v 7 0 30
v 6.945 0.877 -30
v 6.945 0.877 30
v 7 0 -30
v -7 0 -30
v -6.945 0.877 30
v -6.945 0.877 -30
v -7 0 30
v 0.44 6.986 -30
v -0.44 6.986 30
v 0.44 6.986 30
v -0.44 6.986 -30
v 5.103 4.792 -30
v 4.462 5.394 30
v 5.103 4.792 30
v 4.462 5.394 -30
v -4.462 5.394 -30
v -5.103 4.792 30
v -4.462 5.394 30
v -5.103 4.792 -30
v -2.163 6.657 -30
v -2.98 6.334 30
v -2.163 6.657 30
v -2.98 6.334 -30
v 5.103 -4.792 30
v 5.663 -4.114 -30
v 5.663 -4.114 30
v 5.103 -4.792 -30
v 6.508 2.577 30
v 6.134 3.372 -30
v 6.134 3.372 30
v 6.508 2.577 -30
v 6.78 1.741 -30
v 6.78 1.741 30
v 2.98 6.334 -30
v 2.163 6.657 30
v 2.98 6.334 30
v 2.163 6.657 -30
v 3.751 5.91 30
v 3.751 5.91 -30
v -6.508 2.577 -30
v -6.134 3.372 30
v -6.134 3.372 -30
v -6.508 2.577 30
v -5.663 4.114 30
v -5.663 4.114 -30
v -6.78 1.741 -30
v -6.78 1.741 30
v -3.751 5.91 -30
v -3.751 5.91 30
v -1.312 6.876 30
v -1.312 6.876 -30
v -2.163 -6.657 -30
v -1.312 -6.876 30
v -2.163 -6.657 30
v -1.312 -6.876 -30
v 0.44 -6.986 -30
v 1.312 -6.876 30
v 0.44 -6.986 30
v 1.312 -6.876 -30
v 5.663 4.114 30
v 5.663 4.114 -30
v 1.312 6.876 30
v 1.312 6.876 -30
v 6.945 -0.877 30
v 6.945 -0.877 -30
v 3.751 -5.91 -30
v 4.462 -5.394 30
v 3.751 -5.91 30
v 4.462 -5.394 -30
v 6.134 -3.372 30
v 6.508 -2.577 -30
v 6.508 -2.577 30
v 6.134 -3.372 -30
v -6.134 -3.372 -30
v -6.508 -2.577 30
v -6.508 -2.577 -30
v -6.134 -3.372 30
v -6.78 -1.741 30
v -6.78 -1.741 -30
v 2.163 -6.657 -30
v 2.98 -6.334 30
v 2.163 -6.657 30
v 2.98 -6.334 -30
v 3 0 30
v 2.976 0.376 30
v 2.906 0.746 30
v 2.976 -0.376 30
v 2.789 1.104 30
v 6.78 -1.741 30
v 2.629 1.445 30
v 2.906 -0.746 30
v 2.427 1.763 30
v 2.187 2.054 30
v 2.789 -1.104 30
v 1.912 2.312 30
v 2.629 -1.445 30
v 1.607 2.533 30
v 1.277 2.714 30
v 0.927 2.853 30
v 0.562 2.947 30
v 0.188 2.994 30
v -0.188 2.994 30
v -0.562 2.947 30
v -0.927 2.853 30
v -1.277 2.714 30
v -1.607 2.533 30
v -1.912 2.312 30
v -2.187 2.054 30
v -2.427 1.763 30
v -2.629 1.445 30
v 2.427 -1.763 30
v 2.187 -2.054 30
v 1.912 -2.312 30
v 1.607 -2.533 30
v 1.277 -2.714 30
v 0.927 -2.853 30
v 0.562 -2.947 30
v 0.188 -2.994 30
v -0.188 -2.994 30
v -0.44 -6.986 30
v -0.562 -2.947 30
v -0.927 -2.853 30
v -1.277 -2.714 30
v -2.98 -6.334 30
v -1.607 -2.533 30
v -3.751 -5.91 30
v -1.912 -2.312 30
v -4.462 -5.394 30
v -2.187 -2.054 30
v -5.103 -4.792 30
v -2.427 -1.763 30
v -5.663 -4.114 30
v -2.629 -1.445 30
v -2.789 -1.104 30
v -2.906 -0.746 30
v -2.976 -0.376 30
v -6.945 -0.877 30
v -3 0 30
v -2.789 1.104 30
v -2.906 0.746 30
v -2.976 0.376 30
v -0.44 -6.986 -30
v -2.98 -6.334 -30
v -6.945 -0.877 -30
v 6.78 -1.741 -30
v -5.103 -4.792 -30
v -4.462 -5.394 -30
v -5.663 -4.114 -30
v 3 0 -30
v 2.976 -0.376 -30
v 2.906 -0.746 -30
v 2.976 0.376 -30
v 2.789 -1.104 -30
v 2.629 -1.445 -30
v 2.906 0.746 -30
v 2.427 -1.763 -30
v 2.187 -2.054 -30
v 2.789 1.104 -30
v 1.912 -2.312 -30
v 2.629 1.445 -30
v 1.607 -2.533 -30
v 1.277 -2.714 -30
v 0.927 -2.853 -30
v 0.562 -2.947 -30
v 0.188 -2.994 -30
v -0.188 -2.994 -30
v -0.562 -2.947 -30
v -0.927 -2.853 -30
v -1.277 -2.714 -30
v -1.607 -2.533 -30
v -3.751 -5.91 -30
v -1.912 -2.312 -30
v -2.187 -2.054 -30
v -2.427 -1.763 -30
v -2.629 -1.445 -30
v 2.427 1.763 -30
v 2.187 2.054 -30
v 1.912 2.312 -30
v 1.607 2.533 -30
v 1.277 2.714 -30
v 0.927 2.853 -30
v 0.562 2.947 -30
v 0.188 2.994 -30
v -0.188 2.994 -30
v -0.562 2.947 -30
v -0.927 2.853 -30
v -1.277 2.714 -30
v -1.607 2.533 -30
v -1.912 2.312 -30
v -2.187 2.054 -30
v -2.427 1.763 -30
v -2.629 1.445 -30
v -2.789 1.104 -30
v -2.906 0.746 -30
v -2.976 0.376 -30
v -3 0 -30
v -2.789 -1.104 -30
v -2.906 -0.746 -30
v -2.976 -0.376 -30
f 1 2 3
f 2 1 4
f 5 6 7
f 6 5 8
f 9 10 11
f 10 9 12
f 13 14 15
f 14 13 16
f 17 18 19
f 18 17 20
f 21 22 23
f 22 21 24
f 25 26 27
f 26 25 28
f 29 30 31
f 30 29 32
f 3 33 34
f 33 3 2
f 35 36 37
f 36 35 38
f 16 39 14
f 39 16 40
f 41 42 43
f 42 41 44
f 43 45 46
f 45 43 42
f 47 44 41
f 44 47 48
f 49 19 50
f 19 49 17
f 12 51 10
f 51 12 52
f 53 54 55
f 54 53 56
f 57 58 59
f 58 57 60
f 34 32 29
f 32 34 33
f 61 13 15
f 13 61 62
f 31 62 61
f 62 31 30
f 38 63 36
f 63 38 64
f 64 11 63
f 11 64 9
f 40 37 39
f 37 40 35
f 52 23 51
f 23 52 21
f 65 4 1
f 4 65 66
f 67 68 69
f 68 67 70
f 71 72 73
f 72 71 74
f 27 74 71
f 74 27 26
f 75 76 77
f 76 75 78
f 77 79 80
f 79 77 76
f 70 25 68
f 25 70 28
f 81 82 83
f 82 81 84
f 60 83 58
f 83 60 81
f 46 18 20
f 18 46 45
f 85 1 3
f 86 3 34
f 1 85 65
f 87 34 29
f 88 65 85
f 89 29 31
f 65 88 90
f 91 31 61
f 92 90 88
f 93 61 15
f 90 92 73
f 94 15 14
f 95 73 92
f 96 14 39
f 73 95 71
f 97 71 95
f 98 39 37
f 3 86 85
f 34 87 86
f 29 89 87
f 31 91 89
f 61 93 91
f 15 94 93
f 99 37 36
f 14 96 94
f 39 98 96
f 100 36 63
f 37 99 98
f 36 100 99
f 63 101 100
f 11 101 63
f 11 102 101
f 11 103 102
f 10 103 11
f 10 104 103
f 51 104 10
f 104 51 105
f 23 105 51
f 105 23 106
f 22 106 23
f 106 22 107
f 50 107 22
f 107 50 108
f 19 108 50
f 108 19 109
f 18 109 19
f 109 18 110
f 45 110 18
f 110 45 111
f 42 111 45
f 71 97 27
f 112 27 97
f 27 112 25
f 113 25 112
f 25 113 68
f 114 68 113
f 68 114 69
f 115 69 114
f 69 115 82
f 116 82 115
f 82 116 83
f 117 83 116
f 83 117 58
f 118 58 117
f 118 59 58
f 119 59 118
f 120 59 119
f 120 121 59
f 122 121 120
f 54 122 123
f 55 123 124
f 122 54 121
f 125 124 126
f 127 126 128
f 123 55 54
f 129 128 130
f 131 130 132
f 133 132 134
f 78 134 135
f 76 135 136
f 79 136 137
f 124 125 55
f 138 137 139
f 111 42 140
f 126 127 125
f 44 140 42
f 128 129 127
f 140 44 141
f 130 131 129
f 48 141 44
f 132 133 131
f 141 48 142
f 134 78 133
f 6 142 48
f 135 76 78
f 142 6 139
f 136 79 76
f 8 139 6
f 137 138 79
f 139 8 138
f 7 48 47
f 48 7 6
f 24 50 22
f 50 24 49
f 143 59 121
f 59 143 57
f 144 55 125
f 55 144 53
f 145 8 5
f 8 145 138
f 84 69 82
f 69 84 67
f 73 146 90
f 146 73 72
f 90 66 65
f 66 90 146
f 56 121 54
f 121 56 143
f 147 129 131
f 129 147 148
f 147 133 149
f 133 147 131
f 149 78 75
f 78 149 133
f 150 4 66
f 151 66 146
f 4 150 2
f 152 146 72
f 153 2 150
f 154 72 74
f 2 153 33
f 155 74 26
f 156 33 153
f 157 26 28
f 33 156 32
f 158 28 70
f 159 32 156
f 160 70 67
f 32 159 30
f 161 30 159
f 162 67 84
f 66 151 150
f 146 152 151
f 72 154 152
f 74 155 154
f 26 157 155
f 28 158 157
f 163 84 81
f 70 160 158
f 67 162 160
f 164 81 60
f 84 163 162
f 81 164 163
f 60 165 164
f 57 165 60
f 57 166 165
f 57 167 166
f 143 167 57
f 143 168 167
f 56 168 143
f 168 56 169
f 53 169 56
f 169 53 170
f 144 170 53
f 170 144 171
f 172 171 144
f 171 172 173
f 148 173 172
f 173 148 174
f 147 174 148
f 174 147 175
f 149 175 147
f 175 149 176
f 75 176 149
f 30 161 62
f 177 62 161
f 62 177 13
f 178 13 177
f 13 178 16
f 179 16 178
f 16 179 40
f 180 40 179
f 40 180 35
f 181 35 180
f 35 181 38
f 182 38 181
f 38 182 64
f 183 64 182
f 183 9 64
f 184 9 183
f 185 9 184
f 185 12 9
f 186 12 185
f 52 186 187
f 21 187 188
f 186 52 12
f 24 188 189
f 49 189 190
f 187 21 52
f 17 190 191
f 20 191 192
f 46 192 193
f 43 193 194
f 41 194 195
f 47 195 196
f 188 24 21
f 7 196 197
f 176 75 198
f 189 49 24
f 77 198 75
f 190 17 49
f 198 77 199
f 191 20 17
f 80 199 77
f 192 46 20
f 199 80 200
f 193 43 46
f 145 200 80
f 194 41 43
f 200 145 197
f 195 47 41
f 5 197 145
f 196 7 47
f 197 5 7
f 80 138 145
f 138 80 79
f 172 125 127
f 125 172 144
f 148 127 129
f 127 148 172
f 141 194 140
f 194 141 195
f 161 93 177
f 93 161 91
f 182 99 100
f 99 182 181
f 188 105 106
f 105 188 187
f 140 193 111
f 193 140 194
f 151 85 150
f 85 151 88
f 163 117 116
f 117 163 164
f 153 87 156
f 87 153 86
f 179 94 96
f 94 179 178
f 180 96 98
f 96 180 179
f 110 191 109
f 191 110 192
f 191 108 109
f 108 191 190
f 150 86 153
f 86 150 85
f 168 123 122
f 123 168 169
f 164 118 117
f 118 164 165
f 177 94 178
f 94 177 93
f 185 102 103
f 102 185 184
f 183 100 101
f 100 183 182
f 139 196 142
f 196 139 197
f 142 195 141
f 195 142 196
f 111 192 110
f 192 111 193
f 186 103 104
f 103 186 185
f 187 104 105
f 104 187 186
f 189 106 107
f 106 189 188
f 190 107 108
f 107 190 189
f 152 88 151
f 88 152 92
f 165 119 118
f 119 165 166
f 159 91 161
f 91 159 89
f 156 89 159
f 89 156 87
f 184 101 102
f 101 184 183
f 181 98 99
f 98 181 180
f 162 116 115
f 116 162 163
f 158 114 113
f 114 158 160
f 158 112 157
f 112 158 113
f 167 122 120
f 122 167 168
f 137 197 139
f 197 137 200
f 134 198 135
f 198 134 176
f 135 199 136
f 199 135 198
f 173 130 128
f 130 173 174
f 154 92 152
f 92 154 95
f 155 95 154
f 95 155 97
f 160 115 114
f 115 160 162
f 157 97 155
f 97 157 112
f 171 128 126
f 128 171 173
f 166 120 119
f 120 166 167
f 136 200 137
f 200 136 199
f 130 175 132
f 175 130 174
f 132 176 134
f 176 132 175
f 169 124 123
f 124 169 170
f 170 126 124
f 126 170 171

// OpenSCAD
$fn = 50;


difference() {
	union() {
		translate(v = [0, 0, -30.0000000000]) {
			cylinder(h = 60, r = 7.0000000000);
		}
	}
	union() {
		translate(v = [0, 0, -100.0000000000]) {
			cylinder(h = 200, r = 3.0000000000);
		}
	}
}
